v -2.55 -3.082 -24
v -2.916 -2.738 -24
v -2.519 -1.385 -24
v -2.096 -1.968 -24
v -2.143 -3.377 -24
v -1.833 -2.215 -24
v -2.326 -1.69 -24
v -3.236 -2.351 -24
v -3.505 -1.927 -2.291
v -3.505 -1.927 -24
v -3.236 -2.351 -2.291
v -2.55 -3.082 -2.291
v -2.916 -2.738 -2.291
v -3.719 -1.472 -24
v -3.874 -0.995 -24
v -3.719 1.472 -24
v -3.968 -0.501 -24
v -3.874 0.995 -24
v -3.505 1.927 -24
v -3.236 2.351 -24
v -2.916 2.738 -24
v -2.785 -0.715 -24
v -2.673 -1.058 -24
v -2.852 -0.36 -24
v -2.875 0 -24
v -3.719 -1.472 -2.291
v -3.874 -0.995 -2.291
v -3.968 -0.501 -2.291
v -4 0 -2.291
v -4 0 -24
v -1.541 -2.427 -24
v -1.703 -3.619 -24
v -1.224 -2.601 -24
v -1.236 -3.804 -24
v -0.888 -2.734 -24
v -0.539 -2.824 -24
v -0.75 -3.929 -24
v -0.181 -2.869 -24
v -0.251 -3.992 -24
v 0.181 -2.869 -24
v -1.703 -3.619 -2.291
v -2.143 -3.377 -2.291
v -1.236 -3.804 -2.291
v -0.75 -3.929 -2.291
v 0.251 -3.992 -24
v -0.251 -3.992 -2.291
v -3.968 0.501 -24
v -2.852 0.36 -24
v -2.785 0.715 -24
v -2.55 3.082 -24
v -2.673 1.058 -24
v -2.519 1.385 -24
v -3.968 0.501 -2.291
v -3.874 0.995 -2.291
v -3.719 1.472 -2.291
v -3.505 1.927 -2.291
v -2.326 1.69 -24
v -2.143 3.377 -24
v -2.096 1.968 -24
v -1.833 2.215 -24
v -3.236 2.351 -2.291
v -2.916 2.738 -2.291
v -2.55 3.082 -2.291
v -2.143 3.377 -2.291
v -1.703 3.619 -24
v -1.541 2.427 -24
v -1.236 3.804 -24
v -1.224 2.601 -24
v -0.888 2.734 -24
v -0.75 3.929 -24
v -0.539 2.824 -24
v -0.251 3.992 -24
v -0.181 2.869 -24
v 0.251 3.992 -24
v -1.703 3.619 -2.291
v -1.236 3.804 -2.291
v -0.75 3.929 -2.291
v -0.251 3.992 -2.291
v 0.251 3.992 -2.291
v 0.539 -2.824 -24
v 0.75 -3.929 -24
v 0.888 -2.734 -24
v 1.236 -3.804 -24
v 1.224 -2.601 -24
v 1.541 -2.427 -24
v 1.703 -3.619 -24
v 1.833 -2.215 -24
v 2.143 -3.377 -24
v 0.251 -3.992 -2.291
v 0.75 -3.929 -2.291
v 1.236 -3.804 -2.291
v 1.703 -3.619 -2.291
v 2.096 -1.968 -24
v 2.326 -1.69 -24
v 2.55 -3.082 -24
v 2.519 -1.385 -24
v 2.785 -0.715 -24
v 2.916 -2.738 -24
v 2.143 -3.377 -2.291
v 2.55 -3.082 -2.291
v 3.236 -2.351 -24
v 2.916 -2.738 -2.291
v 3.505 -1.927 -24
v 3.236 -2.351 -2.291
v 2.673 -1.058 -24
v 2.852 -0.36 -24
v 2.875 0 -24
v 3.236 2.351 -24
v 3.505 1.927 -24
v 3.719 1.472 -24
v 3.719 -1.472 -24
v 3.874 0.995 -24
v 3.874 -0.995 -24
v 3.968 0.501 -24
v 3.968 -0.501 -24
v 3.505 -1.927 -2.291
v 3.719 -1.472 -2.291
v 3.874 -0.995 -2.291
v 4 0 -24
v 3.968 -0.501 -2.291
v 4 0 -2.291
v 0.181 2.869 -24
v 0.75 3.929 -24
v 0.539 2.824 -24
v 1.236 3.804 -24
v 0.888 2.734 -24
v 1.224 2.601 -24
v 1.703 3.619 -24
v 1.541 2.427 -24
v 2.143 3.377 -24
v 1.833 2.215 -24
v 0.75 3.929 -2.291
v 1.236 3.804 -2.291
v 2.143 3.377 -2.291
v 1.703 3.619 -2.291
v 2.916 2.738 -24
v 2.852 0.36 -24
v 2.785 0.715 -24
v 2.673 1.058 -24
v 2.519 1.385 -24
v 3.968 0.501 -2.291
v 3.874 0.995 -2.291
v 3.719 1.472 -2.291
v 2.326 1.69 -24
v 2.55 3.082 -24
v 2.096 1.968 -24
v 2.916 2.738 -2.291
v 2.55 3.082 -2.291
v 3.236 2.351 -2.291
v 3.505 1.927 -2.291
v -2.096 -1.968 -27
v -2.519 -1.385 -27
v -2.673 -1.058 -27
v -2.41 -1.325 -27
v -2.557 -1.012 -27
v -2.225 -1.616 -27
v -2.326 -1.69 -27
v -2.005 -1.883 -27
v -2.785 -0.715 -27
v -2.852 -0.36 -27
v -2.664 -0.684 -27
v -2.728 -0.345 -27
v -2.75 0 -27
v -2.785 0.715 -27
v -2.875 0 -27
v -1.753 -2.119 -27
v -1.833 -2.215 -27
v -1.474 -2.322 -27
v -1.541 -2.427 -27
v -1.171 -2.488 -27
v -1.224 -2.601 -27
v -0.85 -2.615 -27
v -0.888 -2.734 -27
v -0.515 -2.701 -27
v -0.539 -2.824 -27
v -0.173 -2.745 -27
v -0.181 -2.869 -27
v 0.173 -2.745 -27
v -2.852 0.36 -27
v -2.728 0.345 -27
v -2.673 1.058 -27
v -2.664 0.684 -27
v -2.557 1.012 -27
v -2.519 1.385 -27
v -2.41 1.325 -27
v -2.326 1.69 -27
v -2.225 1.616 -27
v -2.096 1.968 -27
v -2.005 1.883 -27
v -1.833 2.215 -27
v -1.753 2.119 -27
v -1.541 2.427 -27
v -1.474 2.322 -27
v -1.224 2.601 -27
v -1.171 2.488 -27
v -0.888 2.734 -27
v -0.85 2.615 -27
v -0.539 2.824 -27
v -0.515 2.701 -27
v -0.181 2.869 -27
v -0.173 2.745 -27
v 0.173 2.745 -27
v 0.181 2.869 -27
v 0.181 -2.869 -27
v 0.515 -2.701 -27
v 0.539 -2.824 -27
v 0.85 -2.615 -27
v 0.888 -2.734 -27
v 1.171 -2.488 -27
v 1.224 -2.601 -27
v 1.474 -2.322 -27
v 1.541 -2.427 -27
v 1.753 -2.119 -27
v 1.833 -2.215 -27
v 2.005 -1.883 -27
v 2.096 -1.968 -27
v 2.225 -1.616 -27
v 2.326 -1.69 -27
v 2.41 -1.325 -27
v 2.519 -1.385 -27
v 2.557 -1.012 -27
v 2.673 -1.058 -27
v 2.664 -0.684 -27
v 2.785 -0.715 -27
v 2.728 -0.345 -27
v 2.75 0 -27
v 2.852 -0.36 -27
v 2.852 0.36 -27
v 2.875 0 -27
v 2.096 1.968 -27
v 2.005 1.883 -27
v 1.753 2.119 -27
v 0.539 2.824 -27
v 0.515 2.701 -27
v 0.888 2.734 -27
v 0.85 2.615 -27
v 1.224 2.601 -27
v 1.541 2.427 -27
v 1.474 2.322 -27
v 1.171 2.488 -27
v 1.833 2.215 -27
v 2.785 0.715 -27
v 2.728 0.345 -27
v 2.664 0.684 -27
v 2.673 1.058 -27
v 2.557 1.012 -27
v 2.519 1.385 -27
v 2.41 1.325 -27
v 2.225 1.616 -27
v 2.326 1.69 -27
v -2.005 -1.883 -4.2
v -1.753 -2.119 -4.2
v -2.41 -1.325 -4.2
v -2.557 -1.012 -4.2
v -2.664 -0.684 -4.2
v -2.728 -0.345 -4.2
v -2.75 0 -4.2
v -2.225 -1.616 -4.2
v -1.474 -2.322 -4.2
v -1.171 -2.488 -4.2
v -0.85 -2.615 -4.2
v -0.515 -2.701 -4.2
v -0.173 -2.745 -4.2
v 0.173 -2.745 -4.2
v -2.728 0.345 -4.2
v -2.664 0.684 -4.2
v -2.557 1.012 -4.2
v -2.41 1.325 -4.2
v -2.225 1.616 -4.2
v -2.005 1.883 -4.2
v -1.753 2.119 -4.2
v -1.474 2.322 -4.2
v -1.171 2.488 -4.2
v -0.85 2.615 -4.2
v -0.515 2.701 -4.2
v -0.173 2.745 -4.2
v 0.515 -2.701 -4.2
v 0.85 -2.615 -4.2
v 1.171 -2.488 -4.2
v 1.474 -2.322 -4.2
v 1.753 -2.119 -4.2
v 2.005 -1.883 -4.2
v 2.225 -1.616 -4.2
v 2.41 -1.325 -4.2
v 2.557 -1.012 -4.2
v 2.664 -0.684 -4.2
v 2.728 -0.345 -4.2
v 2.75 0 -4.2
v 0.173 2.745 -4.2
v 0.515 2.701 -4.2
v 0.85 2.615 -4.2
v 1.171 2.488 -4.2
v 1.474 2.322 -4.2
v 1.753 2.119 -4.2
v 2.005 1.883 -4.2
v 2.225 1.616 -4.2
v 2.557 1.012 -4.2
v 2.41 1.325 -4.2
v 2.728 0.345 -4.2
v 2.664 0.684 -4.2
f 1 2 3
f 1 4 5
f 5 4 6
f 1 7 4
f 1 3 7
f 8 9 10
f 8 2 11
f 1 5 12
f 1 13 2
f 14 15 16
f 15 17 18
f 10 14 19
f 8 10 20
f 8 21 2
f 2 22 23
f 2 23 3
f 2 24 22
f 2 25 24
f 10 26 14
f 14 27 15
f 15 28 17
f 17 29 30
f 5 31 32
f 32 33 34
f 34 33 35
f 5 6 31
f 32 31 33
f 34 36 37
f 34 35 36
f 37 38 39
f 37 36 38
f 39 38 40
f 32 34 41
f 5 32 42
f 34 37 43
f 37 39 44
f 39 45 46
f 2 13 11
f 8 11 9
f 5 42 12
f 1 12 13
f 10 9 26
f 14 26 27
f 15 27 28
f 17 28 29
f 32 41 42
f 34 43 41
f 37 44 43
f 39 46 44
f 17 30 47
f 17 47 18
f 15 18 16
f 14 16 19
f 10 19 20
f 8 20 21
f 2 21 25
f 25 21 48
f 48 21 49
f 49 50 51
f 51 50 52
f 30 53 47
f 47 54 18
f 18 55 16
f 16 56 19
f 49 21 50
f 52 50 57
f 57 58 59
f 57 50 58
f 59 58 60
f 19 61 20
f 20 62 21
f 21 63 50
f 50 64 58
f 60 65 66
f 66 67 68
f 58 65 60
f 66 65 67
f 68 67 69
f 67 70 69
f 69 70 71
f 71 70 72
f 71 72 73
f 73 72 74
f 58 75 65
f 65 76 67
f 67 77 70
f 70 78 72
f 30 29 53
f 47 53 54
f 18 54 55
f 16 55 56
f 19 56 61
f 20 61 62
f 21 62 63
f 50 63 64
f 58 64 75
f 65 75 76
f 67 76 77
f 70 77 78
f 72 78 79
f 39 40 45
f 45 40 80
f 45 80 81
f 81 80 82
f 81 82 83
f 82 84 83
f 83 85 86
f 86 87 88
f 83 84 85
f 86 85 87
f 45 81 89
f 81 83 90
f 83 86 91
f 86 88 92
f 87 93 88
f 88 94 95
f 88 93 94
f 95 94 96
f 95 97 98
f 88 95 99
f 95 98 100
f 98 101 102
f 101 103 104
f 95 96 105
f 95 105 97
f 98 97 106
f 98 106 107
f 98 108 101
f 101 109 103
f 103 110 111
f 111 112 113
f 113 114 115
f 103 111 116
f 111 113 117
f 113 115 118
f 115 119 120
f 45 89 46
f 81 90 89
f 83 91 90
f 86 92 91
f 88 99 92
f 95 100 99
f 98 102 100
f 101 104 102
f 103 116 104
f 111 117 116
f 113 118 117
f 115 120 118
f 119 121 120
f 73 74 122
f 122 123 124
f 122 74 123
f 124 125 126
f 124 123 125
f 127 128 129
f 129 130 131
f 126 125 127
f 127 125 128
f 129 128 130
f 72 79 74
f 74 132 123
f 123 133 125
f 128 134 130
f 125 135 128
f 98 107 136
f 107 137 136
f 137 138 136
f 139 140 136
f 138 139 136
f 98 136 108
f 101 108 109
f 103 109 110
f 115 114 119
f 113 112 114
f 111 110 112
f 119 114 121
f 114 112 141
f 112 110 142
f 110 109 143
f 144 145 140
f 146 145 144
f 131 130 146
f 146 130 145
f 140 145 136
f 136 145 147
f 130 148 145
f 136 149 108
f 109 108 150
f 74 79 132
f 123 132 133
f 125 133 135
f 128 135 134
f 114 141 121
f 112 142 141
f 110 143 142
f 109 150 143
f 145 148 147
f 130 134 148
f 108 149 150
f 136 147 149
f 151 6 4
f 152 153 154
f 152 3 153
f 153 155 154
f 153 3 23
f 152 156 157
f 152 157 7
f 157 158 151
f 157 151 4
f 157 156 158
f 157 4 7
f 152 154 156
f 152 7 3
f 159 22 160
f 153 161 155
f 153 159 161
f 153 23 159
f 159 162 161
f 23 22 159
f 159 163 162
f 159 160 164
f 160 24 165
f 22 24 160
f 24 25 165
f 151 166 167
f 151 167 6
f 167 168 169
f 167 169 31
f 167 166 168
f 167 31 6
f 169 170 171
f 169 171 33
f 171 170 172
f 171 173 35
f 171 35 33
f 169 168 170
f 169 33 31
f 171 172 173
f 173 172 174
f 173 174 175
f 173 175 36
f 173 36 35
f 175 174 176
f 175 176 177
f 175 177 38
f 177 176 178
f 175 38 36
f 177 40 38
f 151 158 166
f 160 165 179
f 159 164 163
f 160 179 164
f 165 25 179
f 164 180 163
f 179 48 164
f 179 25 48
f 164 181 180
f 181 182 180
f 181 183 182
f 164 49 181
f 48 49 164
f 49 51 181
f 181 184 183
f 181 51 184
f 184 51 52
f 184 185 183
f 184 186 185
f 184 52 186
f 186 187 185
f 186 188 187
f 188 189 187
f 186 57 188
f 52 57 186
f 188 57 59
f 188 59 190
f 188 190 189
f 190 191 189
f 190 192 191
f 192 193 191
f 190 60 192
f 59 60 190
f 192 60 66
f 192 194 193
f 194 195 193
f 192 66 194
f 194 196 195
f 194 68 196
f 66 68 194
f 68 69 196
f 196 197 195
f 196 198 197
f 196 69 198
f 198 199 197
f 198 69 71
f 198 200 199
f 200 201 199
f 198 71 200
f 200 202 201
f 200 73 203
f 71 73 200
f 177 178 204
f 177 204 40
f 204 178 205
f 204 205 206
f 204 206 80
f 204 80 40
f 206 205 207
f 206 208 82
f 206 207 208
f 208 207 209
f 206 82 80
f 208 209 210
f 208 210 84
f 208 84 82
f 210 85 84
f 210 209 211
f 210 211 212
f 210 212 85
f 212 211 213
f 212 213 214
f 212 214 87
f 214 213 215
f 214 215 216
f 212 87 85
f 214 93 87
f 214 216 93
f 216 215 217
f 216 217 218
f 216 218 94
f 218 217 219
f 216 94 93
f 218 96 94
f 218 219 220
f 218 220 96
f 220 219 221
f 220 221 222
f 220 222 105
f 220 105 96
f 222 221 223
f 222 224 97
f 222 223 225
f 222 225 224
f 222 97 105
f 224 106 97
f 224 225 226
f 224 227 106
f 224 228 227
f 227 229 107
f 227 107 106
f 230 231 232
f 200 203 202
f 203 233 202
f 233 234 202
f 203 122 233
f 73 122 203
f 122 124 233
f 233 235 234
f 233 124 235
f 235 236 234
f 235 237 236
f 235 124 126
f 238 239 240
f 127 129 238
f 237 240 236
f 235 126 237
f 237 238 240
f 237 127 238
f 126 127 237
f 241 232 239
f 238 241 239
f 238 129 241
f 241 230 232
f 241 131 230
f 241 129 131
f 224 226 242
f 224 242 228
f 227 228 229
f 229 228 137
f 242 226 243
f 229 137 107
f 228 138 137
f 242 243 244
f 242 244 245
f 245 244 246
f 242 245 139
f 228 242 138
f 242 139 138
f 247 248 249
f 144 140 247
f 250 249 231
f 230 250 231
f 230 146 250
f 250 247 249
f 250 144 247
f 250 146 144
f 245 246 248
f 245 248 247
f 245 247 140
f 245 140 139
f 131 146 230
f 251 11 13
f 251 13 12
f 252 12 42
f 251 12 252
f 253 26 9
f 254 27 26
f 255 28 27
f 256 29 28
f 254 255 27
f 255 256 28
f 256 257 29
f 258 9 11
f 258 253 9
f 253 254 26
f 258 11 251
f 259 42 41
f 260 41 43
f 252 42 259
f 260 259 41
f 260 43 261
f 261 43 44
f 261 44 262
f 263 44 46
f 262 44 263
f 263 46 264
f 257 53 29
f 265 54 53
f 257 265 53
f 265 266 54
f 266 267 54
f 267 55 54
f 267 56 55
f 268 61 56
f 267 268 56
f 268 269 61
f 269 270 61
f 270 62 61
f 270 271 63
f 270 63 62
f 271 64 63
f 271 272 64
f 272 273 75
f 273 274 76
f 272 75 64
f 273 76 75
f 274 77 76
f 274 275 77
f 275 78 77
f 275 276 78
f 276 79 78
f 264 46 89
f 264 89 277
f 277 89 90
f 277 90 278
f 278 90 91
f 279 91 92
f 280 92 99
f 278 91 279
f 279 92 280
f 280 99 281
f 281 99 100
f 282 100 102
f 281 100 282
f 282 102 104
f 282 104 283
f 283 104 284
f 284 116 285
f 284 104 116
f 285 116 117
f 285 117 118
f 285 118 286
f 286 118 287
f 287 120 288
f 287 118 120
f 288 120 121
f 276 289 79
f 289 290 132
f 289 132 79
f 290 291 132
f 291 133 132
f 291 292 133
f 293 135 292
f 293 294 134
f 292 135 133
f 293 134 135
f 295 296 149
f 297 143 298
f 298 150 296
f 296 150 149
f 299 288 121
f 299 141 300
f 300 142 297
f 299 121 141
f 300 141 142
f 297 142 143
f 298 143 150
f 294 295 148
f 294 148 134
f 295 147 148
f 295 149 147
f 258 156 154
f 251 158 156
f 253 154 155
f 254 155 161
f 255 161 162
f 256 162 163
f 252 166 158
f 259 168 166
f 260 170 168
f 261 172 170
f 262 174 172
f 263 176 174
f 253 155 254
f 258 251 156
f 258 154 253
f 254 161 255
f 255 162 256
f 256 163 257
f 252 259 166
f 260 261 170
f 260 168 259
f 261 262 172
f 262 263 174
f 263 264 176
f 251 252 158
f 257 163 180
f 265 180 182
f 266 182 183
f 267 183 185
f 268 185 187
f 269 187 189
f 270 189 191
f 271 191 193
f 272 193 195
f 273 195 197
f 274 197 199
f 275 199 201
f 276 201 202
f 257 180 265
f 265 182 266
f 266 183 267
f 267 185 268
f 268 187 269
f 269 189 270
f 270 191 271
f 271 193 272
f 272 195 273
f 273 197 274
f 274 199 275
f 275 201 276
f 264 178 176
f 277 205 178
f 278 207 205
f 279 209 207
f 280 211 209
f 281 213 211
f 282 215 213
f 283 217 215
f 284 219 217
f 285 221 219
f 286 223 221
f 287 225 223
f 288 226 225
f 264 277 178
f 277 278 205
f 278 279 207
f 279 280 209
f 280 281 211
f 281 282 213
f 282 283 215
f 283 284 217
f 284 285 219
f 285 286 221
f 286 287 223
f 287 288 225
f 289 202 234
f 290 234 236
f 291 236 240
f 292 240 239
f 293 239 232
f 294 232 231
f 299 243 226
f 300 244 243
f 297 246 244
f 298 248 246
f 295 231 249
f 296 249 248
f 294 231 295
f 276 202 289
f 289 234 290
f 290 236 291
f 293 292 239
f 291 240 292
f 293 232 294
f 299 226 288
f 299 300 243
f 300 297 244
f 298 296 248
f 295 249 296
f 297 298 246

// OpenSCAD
$fn = 50;

difference() {
	union() {
		translate(v = [0, 0, -24.0]) {
			cylinder(h = 24, r = 4.0);
		}
		#translate(v = [0, 0, -27.0]) {
			cylinder(h = 27, r = 2.875);
		}
	}
	union() {
		translate(v = [0, 0, 0]) {
			rotate(a = [0, 0, 0]) {
				difference() {
					union() {
						translate(v = [0, 0, -27.0]) {
							cylinder(h = 27, r = 2.25);
						}
						translate(v = [0, 0, -4.2]) {
							cylinder(h = 4.2, r1 = 2.75, r2 = 5.5);
						}
						translate(v = [0, 0, -27.0]) {
							cylinder(h = 27, r = 2.75);
						}
						translate(v = [0, 0, -27.0]) {
							cylinder(h = 27, r = 2.25);
						}
					}
					union();
				}
			}
		}
	}
}
